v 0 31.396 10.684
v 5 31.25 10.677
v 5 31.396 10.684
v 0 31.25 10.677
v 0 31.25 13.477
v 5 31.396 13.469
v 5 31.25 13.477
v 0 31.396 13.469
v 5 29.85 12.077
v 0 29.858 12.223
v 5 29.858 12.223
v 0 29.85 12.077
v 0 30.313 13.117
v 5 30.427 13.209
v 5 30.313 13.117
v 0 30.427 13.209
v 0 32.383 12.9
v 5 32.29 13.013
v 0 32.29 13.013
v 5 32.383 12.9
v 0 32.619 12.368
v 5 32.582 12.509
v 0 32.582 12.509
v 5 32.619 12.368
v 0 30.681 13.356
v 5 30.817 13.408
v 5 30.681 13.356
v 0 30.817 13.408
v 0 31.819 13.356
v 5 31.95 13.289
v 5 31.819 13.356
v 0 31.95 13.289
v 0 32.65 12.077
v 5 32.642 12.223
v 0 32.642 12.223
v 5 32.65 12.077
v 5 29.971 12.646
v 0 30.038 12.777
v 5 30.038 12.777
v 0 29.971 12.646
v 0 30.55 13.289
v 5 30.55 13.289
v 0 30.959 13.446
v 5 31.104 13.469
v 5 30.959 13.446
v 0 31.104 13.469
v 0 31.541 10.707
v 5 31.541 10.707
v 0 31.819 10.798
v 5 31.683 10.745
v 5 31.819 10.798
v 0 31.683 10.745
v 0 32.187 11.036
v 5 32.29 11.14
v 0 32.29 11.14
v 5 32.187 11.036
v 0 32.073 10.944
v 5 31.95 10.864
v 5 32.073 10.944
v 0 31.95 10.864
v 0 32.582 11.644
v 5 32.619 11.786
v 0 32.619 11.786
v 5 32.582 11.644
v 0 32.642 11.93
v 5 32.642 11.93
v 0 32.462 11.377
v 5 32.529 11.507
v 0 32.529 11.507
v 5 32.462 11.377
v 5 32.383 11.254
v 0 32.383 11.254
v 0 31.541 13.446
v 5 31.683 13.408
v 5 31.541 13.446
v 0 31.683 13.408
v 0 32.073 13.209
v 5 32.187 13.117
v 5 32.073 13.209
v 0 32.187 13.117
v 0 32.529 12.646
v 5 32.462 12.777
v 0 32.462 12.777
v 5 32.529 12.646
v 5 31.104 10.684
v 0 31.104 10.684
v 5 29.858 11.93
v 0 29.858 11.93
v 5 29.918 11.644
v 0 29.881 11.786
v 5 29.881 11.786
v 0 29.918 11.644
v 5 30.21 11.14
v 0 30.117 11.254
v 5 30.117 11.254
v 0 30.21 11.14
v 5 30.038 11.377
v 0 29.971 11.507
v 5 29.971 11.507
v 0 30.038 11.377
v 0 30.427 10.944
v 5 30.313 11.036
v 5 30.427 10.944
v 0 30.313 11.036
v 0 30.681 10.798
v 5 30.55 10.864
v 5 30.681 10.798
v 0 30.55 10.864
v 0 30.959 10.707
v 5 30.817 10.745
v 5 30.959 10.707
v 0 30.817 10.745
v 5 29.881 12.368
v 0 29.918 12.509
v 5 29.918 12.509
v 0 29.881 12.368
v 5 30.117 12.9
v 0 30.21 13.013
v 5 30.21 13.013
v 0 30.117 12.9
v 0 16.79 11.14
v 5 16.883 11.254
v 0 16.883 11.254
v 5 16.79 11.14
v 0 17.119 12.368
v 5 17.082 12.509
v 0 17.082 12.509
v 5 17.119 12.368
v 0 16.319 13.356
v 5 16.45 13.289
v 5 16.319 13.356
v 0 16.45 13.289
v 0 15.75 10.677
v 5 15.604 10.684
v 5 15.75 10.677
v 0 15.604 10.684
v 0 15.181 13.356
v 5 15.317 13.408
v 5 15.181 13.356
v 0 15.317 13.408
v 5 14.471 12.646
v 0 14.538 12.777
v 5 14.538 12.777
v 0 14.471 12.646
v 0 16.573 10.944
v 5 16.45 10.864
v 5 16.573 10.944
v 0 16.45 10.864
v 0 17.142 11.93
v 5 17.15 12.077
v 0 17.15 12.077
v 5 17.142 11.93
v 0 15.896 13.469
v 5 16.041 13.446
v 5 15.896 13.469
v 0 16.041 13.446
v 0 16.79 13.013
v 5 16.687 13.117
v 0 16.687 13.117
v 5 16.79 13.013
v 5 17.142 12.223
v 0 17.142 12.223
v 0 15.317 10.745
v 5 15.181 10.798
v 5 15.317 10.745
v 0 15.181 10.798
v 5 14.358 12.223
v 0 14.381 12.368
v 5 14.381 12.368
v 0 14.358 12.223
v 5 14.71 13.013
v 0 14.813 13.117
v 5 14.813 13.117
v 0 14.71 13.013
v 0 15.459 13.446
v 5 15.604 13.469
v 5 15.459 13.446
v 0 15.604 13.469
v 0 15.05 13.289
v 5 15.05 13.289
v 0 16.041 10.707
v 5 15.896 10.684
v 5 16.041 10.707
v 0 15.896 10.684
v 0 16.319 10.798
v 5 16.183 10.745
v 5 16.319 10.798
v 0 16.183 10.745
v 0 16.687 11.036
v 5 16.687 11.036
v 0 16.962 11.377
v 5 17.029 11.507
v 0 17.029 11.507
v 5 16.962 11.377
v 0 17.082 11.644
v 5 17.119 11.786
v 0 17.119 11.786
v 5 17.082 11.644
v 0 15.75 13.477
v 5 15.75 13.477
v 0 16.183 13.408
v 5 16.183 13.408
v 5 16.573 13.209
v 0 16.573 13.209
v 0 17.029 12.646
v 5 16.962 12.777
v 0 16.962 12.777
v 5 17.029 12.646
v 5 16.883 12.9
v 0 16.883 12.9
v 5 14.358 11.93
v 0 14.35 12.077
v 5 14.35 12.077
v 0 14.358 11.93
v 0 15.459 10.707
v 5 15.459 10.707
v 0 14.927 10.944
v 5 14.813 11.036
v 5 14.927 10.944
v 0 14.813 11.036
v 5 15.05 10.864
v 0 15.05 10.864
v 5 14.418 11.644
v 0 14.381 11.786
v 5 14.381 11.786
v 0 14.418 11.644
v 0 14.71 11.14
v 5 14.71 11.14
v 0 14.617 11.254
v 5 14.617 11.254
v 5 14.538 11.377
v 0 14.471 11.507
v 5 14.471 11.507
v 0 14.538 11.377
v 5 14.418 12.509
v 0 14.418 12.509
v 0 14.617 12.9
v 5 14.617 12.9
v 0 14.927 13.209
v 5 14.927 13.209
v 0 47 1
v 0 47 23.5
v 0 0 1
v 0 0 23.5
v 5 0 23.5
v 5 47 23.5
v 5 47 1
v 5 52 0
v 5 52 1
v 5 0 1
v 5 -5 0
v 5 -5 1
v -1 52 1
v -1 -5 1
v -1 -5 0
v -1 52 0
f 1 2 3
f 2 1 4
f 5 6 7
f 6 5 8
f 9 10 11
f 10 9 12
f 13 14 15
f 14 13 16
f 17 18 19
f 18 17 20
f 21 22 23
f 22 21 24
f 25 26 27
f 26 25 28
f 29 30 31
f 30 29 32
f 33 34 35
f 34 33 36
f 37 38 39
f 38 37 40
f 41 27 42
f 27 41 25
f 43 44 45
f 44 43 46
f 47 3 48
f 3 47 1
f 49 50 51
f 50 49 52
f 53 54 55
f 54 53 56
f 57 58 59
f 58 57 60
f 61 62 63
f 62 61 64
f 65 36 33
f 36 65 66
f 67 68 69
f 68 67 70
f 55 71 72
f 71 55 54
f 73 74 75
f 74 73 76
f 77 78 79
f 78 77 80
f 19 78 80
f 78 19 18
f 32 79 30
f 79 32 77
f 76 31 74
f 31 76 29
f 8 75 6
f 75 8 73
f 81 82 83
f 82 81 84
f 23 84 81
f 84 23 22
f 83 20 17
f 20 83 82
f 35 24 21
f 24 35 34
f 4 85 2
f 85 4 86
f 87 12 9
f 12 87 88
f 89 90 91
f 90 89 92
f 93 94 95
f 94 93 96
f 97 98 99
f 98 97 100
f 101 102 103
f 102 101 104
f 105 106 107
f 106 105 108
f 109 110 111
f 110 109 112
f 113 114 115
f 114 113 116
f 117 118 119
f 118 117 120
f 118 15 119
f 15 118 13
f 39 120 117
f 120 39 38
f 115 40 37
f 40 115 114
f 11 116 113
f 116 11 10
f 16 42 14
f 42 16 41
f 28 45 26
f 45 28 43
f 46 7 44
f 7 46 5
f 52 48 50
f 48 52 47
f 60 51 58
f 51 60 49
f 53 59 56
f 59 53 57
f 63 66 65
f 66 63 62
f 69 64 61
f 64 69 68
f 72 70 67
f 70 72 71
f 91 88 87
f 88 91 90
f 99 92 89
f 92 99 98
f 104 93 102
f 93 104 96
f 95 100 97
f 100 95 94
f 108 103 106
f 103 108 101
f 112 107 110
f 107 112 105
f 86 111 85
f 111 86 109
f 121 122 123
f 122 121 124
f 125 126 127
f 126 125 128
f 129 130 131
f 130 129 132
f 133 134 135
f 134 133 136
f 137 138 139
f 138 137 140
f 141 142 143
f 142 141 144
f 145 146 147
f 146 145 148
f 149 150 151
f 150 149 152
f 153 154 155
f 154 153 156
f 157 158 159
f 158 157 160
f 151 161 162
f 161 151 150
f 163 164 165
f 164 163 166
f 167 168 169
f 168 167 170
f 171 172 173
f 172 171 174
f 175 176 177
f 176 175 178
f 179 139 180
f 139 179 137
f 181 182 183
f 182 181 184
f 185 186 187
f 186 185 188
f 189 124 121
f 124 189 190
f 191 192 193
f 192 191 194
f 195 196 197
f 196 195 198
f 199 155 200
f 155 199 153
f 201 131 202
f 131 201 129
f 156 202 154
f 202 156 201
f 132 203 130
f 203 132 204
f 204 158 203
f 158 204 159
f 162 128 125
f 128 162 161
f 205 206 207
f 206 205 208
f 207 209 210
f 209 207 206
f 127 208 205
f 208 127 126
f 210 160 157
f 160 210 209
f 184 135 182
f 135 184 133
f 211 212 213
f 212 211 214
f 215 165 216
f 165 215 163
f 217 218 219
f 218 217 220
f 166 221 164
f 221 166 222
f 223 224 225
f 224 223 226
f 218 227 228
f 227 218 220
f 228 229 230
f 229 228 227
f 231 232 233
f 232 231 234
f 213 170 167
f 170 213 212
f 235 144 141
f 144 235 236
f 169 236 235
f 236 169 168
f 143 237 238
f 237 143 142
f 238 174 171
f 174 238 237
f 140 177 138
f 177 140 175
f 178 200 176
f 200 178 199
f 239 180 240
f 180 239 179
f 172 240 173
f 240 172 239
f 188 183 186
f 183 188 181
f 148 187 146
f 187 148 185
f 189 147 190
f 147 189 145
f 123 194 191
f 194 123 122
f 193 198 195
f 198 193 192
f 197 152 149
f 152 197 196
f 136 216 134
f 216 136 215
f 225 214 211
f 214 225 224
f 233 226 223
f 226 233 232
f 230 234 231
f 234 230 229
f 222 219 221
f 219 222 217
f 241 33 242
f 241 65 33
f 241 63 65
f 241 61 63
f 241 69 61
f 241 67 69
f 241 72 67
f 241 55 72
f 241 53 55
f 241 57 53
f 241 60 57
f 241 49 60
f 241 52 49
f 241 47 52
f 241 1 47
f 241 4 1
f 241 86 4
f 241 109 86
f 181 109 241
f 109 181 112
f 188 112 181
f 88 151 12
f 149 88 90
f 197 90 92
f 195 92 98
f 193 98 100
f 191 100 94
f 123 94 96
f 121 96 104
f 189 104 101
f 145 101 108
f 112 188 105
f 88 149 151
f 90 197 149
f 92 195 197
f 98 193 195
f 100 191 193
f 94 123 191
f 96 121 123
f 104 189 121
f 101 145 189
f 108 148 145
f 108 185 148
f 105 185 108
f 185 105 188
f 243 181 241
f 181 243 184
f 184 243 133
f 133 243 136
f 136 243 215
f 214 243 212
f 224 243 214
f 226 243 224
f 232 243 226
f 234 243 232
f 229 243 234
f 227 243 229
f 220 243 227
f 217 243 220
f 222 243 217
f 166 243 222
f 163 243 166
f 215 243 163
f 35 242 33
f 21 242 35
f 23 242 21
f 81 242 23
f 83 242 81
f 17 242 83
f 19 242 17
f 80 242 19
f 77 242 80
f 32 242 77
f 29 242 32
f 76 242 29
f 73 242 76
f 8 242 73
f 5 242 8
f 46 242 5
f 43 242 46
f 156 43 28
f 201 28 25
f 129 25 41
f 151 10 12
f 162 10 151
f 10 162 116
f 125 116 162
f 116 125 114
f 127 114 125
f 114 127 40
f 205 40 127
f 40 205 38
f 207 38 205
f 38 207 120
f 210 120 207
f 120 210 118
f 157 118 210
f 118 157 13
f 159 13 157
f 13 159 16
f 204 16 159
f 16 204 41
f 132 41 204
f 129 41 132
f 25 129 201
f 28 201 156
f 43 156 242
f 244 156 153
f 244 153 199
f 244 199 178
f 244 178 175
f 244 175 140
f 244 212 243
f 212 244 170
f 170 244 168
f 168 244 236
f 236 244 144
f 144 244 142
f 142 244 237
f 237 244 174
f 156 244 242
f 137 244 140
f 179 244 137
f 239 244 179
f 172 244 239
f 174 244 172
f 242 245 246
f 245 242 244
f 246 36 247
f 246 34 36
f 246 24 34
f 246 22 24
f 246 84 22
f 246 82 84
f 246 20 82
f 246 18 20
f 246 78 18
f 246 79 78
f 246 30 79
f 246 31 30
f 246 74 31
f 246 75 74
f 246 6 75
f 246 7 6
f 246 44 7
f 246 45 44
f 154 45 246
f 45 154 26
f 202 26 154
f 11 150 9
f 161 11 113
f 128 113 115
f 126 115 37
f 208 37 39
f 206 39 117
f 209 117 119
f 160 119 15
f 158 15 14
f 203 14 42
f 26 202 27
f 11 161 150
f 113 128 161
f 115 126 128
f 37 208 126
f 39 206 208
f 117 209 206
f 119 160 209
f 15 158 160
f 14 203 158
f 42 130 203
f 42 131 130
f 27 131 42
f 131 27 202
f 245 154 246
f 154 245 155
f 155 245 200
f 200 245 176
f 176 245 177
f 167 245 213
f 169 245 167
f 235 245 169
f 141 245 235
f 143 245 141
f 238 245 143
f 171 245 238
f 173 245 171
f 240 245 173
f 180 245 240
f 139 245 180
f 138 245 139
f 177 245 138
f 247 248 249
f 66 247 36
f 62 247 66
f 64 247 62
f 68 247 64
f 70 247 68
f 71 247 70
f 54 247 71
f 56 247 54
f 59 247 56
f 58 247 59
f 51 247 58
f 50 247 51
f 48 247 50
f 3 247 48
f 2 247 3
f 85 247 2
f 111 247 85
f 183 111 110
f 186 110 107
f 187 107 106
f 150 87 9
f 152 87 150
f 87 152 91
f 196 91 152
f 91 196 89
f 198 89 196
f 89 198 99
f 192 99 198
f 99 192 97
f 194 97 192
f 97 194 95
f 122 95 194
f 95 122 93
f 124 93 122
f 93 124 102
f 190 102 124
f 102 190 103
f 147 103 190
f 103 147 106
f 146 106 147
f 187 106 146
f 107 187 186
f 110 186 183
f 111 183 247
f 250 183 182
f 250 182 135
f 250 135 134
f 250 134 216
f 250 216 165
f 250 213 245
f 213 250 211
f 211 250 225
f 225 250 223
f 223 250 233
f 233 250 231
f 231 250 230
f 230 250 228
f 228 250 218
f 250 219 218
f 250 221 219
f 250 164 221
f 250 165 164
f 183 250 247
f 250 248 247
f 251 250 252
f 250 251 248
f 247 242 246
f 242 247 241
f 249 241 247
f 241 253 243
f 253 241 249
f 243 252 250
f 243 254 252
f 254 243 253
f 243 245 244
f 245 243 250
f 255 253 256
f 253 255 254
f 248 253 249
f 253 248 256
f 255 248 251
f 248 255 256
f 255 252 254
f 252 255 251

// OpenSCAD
// ============================================================
// Motor Side Wall — Test Print
// Quick prototype to verify hole pattern and fit
// ============================================================

$fn = 60;

// Motor parameters (same as main platform)
motor_d        = 37;
motor_hex_r    = 15.5;    // 6x M3 hole pattern radius
motor_shaft_d  = 14;      // Not used (no shaft hole)

// Cradle dimensions (to match motor center height)
cradle_wall      = 5;
cradle_clearance = 1;
cradle_r         = motor_d / 2 + cradle_clearance;
cradle_total_w   = motor_d + 2 * cradle_wall;
cradle_total_h   = cradle_r + cradle_wall;

// Side wall
side_wall_t = 5;
hole_d      = 2.8;       // M3 self-tap (same as IBT_2)

// Base plate for test print stability
base_t = 1;
base_w = cradle_total_w + 10;

// --- Base ---
translate([-base_t, -(base_w - cradle_total_w) / 2, 0])
    cube([side_wall_t + base_t, base_w, base_t]);

// --- Side Wall ---
translate([0, 0, base_t])
    difference() {
        cube([side_wall_t, cradle_total_w, cradle_total_h - 2]);

        // 4x M3 mounting holes (bottom 4 of hex pattern)
        for (i = [0:5]) {
            angle = i * 60 + 90;
            z_pos = cradle_total_h + motor_hex_r * cos(angle);
            if (z_pos < cradle_total_h)
                translate([-1,
                           cradle_total_w / 2 + motor_hex_r * sin(angle),
                           z_pos])
                    rotate([0, 90, 0])
                        cylinder(d = hole_d, h = side_wall_t + 2);
        }
    }

echo(str("Wall size: ", side_wall_t, " x ", cradle_total_w, " x ", cradle_total_h - 2, " mm"));
echo(str("Motor center at height: ", cradle_total_h, " mm from base"));
echo(str("Holes: bottom 4 of hex pattern, radius ", motor_hex_r, " mm"));
